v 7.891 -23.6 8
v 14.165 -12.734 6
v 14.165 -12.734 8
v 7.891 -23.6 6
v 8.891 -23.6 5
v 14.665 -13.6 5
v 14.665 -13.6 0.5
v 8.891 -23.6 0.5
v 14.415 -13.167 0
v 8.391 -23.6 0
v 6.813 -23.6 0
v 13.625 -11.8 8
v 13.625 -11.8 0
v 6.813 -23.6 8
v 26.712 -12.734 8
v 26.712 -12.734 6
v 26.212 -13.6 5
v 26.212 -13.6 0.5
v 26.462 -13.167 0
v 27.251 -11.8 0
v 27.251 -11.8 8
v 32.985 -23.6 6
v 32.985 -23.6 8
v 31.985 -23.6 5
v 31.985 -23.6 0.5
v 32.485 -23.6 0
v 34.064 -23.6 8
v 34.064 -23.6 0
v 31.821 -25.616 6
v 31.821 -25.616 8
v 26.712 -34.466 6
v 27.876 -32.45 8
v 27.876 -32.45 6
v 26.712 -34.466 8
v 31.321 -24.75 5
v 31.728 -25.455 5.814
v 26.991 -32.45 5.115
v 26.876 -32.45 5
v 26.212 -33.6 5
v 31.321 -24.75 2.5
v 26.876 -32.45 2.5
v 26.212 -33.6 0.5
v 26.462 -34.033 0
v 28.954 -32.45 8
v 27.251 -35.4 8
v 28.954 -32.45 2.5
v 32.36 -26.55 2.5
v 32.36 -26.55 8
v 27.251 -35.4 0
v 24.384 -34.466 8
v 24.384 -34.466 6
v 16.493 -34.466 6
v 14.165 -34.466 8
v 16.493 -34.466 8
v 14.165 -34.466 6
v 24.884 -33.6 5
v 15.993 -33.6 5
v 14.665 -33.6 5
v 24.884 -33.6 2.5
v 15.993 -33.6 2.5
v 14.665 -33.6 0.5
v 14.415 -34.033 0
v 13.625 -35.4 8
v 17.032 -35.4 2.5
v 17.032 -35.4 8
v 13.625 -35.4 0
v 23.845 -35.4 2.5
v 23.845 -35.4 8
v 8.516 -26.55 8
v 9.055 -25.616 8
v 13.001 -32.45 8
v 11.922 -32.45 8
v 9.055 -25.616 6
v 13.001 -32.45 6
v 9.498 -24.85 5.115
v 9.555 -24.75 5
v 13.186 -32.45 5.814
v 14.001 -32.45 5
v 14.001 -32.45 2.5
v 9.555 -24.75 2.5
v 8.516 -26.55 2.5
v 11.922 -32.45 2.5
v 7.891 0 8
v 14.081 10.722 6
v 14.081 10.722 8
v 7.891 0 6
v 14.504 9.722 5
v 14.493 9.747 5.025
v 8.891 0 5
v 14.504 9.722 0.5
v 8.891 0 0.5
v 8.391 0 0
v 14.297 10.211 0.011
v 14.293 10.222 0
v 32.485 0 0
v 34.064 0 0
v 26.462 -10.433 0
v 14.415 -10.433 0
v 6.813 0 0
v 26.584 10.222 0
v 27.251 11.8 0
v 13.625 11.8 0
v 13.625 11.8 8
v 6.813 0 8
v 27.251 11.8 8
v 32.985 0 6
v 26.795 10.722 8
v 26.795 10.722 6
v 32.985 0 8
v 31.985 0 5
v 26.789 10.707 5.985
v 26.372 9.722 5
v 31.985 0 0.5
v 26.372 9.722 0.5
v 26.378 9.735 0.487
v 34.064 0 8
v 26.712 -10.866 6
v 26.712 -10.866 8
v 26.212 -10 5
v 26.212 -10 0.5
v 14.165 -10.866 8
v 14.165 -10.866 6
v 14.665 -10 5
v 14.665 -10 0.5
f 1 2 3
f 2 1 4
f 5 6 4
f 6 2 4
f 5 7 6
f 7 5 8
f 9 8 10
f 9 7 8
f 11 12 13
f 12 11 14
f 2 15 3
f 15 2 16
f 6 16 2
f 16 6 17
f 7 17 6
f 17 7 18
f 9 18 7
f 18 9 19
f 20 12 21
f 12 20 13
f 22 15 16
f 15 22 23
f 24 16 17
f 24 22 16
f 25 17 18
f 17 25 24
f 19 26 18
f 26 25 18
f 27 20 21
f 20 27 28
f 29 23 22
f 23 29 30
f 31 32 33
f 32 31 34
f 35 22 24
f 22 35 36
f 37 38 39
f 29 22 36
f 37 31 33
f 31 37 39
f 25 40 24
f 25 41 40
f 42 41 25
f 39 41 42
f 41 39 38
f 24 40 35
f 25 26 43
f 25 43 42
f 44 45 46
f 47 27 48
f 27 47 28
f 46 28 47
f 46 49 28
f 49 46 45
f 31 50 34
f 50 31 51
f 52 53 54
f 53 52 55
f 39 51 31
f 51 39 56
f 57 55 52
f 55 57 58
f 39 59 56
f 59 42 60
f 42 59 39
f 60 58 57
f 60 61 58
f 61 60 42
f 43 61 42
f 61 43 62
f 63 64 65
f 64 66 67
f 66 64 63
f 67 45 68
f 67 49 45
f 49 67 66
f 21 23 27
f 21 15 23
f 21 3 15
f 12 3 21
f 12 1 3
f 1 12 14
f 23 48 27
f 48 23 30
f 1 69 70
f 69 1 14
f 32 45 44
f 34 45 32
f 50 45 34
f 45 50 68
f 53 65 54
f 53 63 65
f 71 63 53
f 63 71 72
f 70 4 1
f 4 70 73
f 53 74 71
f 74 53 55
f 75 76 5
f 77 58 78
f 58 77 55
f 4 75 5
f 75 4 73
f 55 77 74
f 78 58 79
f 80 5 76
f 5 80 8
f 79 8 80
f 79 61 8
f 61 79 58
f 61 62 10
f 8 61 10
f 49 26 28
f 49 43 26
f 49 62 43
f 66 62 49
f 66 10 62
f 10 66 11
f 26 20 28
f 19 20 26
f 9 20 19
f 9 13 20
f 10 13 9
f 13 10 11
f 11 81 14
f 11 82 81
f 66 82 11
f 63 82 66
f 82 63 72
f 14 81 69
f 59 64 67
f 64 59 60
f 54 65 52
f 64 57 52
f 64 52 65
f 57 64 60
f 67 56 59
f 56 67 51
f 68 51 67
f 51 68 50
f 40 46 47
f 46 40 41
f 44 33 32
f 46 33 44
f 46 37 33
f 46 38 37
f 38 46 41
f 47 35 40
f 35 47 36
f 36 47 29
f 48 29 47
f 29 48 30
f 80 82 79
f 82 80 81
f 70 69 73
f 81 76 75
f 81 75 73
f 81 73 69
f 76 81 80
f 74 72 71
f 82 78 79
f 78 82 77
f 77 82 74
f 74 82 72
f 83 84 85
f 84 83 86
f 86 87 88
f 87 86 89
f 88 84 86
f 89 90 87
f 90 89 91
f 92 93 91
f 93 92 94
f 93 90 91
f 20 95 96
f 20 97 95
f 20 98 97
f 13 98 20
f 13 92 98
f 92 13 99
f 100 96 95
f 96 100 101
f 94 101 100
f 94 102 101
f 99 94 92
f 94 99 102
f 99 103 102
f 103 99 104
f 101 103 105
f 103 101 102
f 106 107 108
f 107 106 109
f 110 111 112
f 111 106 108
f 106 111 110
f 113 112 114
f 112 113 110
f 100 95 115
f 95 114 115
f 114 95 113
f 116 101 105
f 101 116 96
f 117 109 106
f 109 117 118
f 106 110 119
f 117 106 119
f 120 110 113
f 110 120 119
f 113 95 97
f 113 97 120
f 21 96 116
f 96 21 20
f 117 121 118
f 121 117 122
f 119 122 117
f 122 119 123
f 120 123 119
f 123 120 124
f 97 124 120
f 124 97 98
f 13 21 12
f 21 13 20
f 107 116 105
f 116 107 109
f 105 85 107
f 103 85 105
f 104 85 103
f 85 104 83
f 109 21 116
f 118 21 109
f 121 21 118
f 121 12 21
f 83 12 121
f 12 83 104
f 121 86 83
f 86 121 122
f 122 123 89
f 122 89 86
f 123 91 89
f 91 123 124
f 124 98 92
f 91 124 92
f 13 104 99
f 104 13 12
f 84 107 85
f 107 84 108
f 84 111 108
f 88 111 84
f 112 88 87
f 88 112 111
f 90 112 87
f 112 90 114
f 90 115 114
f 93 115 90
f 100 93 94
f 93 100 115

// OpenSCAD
// file: honeycomb_element.scad
$fn = 50;

radius = 13.6;
diameter = radius * 2;

h_inner = 10;
r_inner = h_inner * 2 / sqrt(3);

h_outer = 10 + 1.8;
r_outer = h_outer * 2 / sqrt(3);

h_thin = 10 + 1;
r_thin = h_thin * 2 / sqrt(3);

total_height = 8;

small_value = 0.1;

clips_height = 5;
clips_offset = 0.5;
clips_side_offset = 0.00;

module basic_polygon() {
  polygon(
    [
      [r_outer, total_height],
      [r_outer, 0],
      [r_inner + 0.5, 0],
      [r_inner, 0.5],
      [r_inner, total_height - 3],
      [r_inner + 1, total_height - 2],
      [r_inner + 1, total_height],
    ]
  );
}

module basic_model() {
  rotate_extrude($fn=6) {
    basic_polygon();
  }
}

module panel_with_clips(pin_1 = false, pin_2 = false, pin_3 = false, pin_4 = false, pin_5 = false, pin_6 = false, slot_1 = false, slot_2 = false, slot_3 = false, slot_4 = false, slot_5 = false, slot_6 = false) {

  difference() {
    basic_model();

    if (slot_1) {
      rotate([0, 0, 0])
        translate([0, -h_outer * 2, total_height - (clips_height + clips_offset) / 2])
          linear_extrude(height=clips_height + clips_offset, center=true)
            polygon([[clips_side_offset, h_outer / 2], [-clips_side_offset, h_outer / 2], [-r_outer / 2 - clips_side_offset, h_outer * 1.5], [r_outer / 2 + clips_side_offset, h_outer * 1.5]]);
    }

    if (slot_2) {
      rotate([0, 0, 60])
        translate([0, -h_outer * 2, total_height - (clips_height + clips_offset) / 2])
          linear_extrude(height=clips_height + clips_offset, center=true)
            polygon([[clips_side_offset, h_outer / 2], [-clips_side_offset, h_outer / 2], [-r_outer / 2 - clips_side_offset, h_outer * 1.5], [r_outer / 2 + clips_side_offset, h_outer * 1.5]]);
    }

    if (slot_3) {
      rotate([0, 0, 120])
        translate([0, -h_outer * 2, total_height - (clips_height + clips_offset) / 2])
          linear_extrude(height=clips_height + clips_offset, center=true)
            polygon([[clips_side_offset, h_outer / 2], [-clips_side_offset, h_outer / 2], [-r_outer / 2 - clips_side_offset, h_outer * 1.5], [r_outer / 2 + clips_side_offset, h_outer * 1.5]]);
    }

    if (slot_4) {
      rotate([0, 0, 180])
        translate([0, -h_outer * 2, total_height - (clips_height + clips_offset) / 2])
          linear_extrude(height=clips_height + clips_offset, center=true)
            polygon([[clips_side_offset, h_outer / 2], [-clips_side_offset, h_outer / 2], [-r_outer / 2 - clips_side_offset, h_outer * 1.5], [r_outer / 2 + clips_side_offset, h_outer * 1.5]]);
    }

    if (slot_5) {
      rotate([0, 0, 240])
        translate([0, -h_outer * 2, total_height - (clips_height + clips_offset) / 2])
          linear_extrude(height=clips_height + clips_offset, center=true)
            polygon([[clips_side_offset, h_outer / 2], [-clips_side_offset, h_outer / 2], [-r_outer / 2 - clips_side_offset, h_outer * 1.5], [r_outer / 2 + clips_side_offset, h_outer * 1.5]]);
    }

    if (slot_6) {
      rotate([0, 0, 300])
        translate([0, -h_outer * 2, total_height - (clips_height + clips_offset) / 2])
          linear_extrude(height=clips_height + clips_offset, center=true)
            polygon([[clips_side_offset, h_outer / 2], [-clips_side_offset, h_outer / 2], [-r_outer / 2 - clips_side_offset, h_outer * 1.5], [r_outer / 2 + clips_side_offset, h_outer * 1.5]]);
    }
  }

  if (pin_1) {
    intersection() {
      translate([0, -h_outer * 2, 0])
        basic_model();
      translate([0, 0, total_height - clips_height / 2]) {
        rotate([0, 0, -180])
          linear_extrude(height=clips_height, center=true)
            polygon([[0, h_outer / 2], [-r_outer / 2, h_outer * 1.5], [r_outer / 2, h_outer * 1.5]]);
      }
    }
  }

  if (pin_2) {
    intersection() {
      translate([r_outer * 1.5, -h_outer, 0])
        basic_model();
      translate([0, 0, total_height - clips_height / 2]) {
        rotate([0, 0, -120])
          linear_extrude(height=clips_height, center=true)
            polygon([[0, h_outer / 2], [-r_outer / 2, h_outer * 1.5], [r_outer / 2, h_outer * 1.5]]);
      }
    }
  }

  if (pin_3) {
    intersection() {
      translate([r_outer * 1.5, h_outer, 0])
        basic_model();
      translate([0, 0, total_height - clips_height / 2]) {
        rotate([0, 0, -60])
          linear_extrude(height=clips_height, center=true)
            polygon([[0, h_outer / 2], [-r_outer / 2, h_outer * 1.5], [r_outer / 2, h_outer * 1.5]]);
      }
    }
  }

  if (pin_4) {
    intersection() {
      translate([0, h_outer * 2, 0])
        basic_model();

      translate([0, 0, total_height - clips_height / 2]) {
        linear_extrude(height=clips_height, center=true)
          polygon([[0, h_outer / 2], [-r_outer / 2, h_outer * 1.5], [r_outer / 2, h_outer * 1.5]]);
      }
    }
  }

  if (pin_5) {
    intersection() {
      translate([-r_outer * 1.5, h_outer, 0])
        basic_model();
      translate([0, 0, total_height - clips_height / 2]) {
        rotate([0, 0, 60])
          linear_extrude(height=clips_height, center=true)
            polygon([[0, h_outer / 2], [-r_outer / 2, h_outer * 1.5], [r_outer / 2, h_outer * 1.5]]);
      }
    }
  }

  if (pin_6) {
    intersection() {
      translate([-r_outer * 1.5, -h_outer, 0])
        basic_model();

      translate([0, 0, total_height - clips_height / 2]) {
        rotate([0, 0, 120])
          linear_extrude(height=clips_height, center=true)
            polygon([[0, h_outer / 2], [-r_outer / 2, h_outer * 1.5], [r_outer / 2, h_outer * 1.5]]);
      }
    }
  }
}

// end honeycomb_element.scad
// main file
$fn = 50;

h_outer = 10+1.8;
r_outer = h_outer * 2/sqrt(3);


use <honeycomb_element.scad>;

module perimeter_top_item(left_slot=false, inner_slot=false, middle_slot=false) {

  
  translate([r_outer*1.5, 0, 0])
     panel_with_clips(slot_1=false); 
  
  translate([r_outer*1.5, -2*h_outer, 0])
     panel_with_clips(slot_1=true, slot_2=true,  slot_6=true); 
    
    
  translate([1.5 * r_outer, h_outer-r_outer, 0])
      rotate([90, 0, 90])
        linear_extrude(height = r_outer, center=true)
          basic_polygon();
    
}




module perimeter_bottom() {
    
    perimeter_top_item();
    


}

perimeter_bottom();
